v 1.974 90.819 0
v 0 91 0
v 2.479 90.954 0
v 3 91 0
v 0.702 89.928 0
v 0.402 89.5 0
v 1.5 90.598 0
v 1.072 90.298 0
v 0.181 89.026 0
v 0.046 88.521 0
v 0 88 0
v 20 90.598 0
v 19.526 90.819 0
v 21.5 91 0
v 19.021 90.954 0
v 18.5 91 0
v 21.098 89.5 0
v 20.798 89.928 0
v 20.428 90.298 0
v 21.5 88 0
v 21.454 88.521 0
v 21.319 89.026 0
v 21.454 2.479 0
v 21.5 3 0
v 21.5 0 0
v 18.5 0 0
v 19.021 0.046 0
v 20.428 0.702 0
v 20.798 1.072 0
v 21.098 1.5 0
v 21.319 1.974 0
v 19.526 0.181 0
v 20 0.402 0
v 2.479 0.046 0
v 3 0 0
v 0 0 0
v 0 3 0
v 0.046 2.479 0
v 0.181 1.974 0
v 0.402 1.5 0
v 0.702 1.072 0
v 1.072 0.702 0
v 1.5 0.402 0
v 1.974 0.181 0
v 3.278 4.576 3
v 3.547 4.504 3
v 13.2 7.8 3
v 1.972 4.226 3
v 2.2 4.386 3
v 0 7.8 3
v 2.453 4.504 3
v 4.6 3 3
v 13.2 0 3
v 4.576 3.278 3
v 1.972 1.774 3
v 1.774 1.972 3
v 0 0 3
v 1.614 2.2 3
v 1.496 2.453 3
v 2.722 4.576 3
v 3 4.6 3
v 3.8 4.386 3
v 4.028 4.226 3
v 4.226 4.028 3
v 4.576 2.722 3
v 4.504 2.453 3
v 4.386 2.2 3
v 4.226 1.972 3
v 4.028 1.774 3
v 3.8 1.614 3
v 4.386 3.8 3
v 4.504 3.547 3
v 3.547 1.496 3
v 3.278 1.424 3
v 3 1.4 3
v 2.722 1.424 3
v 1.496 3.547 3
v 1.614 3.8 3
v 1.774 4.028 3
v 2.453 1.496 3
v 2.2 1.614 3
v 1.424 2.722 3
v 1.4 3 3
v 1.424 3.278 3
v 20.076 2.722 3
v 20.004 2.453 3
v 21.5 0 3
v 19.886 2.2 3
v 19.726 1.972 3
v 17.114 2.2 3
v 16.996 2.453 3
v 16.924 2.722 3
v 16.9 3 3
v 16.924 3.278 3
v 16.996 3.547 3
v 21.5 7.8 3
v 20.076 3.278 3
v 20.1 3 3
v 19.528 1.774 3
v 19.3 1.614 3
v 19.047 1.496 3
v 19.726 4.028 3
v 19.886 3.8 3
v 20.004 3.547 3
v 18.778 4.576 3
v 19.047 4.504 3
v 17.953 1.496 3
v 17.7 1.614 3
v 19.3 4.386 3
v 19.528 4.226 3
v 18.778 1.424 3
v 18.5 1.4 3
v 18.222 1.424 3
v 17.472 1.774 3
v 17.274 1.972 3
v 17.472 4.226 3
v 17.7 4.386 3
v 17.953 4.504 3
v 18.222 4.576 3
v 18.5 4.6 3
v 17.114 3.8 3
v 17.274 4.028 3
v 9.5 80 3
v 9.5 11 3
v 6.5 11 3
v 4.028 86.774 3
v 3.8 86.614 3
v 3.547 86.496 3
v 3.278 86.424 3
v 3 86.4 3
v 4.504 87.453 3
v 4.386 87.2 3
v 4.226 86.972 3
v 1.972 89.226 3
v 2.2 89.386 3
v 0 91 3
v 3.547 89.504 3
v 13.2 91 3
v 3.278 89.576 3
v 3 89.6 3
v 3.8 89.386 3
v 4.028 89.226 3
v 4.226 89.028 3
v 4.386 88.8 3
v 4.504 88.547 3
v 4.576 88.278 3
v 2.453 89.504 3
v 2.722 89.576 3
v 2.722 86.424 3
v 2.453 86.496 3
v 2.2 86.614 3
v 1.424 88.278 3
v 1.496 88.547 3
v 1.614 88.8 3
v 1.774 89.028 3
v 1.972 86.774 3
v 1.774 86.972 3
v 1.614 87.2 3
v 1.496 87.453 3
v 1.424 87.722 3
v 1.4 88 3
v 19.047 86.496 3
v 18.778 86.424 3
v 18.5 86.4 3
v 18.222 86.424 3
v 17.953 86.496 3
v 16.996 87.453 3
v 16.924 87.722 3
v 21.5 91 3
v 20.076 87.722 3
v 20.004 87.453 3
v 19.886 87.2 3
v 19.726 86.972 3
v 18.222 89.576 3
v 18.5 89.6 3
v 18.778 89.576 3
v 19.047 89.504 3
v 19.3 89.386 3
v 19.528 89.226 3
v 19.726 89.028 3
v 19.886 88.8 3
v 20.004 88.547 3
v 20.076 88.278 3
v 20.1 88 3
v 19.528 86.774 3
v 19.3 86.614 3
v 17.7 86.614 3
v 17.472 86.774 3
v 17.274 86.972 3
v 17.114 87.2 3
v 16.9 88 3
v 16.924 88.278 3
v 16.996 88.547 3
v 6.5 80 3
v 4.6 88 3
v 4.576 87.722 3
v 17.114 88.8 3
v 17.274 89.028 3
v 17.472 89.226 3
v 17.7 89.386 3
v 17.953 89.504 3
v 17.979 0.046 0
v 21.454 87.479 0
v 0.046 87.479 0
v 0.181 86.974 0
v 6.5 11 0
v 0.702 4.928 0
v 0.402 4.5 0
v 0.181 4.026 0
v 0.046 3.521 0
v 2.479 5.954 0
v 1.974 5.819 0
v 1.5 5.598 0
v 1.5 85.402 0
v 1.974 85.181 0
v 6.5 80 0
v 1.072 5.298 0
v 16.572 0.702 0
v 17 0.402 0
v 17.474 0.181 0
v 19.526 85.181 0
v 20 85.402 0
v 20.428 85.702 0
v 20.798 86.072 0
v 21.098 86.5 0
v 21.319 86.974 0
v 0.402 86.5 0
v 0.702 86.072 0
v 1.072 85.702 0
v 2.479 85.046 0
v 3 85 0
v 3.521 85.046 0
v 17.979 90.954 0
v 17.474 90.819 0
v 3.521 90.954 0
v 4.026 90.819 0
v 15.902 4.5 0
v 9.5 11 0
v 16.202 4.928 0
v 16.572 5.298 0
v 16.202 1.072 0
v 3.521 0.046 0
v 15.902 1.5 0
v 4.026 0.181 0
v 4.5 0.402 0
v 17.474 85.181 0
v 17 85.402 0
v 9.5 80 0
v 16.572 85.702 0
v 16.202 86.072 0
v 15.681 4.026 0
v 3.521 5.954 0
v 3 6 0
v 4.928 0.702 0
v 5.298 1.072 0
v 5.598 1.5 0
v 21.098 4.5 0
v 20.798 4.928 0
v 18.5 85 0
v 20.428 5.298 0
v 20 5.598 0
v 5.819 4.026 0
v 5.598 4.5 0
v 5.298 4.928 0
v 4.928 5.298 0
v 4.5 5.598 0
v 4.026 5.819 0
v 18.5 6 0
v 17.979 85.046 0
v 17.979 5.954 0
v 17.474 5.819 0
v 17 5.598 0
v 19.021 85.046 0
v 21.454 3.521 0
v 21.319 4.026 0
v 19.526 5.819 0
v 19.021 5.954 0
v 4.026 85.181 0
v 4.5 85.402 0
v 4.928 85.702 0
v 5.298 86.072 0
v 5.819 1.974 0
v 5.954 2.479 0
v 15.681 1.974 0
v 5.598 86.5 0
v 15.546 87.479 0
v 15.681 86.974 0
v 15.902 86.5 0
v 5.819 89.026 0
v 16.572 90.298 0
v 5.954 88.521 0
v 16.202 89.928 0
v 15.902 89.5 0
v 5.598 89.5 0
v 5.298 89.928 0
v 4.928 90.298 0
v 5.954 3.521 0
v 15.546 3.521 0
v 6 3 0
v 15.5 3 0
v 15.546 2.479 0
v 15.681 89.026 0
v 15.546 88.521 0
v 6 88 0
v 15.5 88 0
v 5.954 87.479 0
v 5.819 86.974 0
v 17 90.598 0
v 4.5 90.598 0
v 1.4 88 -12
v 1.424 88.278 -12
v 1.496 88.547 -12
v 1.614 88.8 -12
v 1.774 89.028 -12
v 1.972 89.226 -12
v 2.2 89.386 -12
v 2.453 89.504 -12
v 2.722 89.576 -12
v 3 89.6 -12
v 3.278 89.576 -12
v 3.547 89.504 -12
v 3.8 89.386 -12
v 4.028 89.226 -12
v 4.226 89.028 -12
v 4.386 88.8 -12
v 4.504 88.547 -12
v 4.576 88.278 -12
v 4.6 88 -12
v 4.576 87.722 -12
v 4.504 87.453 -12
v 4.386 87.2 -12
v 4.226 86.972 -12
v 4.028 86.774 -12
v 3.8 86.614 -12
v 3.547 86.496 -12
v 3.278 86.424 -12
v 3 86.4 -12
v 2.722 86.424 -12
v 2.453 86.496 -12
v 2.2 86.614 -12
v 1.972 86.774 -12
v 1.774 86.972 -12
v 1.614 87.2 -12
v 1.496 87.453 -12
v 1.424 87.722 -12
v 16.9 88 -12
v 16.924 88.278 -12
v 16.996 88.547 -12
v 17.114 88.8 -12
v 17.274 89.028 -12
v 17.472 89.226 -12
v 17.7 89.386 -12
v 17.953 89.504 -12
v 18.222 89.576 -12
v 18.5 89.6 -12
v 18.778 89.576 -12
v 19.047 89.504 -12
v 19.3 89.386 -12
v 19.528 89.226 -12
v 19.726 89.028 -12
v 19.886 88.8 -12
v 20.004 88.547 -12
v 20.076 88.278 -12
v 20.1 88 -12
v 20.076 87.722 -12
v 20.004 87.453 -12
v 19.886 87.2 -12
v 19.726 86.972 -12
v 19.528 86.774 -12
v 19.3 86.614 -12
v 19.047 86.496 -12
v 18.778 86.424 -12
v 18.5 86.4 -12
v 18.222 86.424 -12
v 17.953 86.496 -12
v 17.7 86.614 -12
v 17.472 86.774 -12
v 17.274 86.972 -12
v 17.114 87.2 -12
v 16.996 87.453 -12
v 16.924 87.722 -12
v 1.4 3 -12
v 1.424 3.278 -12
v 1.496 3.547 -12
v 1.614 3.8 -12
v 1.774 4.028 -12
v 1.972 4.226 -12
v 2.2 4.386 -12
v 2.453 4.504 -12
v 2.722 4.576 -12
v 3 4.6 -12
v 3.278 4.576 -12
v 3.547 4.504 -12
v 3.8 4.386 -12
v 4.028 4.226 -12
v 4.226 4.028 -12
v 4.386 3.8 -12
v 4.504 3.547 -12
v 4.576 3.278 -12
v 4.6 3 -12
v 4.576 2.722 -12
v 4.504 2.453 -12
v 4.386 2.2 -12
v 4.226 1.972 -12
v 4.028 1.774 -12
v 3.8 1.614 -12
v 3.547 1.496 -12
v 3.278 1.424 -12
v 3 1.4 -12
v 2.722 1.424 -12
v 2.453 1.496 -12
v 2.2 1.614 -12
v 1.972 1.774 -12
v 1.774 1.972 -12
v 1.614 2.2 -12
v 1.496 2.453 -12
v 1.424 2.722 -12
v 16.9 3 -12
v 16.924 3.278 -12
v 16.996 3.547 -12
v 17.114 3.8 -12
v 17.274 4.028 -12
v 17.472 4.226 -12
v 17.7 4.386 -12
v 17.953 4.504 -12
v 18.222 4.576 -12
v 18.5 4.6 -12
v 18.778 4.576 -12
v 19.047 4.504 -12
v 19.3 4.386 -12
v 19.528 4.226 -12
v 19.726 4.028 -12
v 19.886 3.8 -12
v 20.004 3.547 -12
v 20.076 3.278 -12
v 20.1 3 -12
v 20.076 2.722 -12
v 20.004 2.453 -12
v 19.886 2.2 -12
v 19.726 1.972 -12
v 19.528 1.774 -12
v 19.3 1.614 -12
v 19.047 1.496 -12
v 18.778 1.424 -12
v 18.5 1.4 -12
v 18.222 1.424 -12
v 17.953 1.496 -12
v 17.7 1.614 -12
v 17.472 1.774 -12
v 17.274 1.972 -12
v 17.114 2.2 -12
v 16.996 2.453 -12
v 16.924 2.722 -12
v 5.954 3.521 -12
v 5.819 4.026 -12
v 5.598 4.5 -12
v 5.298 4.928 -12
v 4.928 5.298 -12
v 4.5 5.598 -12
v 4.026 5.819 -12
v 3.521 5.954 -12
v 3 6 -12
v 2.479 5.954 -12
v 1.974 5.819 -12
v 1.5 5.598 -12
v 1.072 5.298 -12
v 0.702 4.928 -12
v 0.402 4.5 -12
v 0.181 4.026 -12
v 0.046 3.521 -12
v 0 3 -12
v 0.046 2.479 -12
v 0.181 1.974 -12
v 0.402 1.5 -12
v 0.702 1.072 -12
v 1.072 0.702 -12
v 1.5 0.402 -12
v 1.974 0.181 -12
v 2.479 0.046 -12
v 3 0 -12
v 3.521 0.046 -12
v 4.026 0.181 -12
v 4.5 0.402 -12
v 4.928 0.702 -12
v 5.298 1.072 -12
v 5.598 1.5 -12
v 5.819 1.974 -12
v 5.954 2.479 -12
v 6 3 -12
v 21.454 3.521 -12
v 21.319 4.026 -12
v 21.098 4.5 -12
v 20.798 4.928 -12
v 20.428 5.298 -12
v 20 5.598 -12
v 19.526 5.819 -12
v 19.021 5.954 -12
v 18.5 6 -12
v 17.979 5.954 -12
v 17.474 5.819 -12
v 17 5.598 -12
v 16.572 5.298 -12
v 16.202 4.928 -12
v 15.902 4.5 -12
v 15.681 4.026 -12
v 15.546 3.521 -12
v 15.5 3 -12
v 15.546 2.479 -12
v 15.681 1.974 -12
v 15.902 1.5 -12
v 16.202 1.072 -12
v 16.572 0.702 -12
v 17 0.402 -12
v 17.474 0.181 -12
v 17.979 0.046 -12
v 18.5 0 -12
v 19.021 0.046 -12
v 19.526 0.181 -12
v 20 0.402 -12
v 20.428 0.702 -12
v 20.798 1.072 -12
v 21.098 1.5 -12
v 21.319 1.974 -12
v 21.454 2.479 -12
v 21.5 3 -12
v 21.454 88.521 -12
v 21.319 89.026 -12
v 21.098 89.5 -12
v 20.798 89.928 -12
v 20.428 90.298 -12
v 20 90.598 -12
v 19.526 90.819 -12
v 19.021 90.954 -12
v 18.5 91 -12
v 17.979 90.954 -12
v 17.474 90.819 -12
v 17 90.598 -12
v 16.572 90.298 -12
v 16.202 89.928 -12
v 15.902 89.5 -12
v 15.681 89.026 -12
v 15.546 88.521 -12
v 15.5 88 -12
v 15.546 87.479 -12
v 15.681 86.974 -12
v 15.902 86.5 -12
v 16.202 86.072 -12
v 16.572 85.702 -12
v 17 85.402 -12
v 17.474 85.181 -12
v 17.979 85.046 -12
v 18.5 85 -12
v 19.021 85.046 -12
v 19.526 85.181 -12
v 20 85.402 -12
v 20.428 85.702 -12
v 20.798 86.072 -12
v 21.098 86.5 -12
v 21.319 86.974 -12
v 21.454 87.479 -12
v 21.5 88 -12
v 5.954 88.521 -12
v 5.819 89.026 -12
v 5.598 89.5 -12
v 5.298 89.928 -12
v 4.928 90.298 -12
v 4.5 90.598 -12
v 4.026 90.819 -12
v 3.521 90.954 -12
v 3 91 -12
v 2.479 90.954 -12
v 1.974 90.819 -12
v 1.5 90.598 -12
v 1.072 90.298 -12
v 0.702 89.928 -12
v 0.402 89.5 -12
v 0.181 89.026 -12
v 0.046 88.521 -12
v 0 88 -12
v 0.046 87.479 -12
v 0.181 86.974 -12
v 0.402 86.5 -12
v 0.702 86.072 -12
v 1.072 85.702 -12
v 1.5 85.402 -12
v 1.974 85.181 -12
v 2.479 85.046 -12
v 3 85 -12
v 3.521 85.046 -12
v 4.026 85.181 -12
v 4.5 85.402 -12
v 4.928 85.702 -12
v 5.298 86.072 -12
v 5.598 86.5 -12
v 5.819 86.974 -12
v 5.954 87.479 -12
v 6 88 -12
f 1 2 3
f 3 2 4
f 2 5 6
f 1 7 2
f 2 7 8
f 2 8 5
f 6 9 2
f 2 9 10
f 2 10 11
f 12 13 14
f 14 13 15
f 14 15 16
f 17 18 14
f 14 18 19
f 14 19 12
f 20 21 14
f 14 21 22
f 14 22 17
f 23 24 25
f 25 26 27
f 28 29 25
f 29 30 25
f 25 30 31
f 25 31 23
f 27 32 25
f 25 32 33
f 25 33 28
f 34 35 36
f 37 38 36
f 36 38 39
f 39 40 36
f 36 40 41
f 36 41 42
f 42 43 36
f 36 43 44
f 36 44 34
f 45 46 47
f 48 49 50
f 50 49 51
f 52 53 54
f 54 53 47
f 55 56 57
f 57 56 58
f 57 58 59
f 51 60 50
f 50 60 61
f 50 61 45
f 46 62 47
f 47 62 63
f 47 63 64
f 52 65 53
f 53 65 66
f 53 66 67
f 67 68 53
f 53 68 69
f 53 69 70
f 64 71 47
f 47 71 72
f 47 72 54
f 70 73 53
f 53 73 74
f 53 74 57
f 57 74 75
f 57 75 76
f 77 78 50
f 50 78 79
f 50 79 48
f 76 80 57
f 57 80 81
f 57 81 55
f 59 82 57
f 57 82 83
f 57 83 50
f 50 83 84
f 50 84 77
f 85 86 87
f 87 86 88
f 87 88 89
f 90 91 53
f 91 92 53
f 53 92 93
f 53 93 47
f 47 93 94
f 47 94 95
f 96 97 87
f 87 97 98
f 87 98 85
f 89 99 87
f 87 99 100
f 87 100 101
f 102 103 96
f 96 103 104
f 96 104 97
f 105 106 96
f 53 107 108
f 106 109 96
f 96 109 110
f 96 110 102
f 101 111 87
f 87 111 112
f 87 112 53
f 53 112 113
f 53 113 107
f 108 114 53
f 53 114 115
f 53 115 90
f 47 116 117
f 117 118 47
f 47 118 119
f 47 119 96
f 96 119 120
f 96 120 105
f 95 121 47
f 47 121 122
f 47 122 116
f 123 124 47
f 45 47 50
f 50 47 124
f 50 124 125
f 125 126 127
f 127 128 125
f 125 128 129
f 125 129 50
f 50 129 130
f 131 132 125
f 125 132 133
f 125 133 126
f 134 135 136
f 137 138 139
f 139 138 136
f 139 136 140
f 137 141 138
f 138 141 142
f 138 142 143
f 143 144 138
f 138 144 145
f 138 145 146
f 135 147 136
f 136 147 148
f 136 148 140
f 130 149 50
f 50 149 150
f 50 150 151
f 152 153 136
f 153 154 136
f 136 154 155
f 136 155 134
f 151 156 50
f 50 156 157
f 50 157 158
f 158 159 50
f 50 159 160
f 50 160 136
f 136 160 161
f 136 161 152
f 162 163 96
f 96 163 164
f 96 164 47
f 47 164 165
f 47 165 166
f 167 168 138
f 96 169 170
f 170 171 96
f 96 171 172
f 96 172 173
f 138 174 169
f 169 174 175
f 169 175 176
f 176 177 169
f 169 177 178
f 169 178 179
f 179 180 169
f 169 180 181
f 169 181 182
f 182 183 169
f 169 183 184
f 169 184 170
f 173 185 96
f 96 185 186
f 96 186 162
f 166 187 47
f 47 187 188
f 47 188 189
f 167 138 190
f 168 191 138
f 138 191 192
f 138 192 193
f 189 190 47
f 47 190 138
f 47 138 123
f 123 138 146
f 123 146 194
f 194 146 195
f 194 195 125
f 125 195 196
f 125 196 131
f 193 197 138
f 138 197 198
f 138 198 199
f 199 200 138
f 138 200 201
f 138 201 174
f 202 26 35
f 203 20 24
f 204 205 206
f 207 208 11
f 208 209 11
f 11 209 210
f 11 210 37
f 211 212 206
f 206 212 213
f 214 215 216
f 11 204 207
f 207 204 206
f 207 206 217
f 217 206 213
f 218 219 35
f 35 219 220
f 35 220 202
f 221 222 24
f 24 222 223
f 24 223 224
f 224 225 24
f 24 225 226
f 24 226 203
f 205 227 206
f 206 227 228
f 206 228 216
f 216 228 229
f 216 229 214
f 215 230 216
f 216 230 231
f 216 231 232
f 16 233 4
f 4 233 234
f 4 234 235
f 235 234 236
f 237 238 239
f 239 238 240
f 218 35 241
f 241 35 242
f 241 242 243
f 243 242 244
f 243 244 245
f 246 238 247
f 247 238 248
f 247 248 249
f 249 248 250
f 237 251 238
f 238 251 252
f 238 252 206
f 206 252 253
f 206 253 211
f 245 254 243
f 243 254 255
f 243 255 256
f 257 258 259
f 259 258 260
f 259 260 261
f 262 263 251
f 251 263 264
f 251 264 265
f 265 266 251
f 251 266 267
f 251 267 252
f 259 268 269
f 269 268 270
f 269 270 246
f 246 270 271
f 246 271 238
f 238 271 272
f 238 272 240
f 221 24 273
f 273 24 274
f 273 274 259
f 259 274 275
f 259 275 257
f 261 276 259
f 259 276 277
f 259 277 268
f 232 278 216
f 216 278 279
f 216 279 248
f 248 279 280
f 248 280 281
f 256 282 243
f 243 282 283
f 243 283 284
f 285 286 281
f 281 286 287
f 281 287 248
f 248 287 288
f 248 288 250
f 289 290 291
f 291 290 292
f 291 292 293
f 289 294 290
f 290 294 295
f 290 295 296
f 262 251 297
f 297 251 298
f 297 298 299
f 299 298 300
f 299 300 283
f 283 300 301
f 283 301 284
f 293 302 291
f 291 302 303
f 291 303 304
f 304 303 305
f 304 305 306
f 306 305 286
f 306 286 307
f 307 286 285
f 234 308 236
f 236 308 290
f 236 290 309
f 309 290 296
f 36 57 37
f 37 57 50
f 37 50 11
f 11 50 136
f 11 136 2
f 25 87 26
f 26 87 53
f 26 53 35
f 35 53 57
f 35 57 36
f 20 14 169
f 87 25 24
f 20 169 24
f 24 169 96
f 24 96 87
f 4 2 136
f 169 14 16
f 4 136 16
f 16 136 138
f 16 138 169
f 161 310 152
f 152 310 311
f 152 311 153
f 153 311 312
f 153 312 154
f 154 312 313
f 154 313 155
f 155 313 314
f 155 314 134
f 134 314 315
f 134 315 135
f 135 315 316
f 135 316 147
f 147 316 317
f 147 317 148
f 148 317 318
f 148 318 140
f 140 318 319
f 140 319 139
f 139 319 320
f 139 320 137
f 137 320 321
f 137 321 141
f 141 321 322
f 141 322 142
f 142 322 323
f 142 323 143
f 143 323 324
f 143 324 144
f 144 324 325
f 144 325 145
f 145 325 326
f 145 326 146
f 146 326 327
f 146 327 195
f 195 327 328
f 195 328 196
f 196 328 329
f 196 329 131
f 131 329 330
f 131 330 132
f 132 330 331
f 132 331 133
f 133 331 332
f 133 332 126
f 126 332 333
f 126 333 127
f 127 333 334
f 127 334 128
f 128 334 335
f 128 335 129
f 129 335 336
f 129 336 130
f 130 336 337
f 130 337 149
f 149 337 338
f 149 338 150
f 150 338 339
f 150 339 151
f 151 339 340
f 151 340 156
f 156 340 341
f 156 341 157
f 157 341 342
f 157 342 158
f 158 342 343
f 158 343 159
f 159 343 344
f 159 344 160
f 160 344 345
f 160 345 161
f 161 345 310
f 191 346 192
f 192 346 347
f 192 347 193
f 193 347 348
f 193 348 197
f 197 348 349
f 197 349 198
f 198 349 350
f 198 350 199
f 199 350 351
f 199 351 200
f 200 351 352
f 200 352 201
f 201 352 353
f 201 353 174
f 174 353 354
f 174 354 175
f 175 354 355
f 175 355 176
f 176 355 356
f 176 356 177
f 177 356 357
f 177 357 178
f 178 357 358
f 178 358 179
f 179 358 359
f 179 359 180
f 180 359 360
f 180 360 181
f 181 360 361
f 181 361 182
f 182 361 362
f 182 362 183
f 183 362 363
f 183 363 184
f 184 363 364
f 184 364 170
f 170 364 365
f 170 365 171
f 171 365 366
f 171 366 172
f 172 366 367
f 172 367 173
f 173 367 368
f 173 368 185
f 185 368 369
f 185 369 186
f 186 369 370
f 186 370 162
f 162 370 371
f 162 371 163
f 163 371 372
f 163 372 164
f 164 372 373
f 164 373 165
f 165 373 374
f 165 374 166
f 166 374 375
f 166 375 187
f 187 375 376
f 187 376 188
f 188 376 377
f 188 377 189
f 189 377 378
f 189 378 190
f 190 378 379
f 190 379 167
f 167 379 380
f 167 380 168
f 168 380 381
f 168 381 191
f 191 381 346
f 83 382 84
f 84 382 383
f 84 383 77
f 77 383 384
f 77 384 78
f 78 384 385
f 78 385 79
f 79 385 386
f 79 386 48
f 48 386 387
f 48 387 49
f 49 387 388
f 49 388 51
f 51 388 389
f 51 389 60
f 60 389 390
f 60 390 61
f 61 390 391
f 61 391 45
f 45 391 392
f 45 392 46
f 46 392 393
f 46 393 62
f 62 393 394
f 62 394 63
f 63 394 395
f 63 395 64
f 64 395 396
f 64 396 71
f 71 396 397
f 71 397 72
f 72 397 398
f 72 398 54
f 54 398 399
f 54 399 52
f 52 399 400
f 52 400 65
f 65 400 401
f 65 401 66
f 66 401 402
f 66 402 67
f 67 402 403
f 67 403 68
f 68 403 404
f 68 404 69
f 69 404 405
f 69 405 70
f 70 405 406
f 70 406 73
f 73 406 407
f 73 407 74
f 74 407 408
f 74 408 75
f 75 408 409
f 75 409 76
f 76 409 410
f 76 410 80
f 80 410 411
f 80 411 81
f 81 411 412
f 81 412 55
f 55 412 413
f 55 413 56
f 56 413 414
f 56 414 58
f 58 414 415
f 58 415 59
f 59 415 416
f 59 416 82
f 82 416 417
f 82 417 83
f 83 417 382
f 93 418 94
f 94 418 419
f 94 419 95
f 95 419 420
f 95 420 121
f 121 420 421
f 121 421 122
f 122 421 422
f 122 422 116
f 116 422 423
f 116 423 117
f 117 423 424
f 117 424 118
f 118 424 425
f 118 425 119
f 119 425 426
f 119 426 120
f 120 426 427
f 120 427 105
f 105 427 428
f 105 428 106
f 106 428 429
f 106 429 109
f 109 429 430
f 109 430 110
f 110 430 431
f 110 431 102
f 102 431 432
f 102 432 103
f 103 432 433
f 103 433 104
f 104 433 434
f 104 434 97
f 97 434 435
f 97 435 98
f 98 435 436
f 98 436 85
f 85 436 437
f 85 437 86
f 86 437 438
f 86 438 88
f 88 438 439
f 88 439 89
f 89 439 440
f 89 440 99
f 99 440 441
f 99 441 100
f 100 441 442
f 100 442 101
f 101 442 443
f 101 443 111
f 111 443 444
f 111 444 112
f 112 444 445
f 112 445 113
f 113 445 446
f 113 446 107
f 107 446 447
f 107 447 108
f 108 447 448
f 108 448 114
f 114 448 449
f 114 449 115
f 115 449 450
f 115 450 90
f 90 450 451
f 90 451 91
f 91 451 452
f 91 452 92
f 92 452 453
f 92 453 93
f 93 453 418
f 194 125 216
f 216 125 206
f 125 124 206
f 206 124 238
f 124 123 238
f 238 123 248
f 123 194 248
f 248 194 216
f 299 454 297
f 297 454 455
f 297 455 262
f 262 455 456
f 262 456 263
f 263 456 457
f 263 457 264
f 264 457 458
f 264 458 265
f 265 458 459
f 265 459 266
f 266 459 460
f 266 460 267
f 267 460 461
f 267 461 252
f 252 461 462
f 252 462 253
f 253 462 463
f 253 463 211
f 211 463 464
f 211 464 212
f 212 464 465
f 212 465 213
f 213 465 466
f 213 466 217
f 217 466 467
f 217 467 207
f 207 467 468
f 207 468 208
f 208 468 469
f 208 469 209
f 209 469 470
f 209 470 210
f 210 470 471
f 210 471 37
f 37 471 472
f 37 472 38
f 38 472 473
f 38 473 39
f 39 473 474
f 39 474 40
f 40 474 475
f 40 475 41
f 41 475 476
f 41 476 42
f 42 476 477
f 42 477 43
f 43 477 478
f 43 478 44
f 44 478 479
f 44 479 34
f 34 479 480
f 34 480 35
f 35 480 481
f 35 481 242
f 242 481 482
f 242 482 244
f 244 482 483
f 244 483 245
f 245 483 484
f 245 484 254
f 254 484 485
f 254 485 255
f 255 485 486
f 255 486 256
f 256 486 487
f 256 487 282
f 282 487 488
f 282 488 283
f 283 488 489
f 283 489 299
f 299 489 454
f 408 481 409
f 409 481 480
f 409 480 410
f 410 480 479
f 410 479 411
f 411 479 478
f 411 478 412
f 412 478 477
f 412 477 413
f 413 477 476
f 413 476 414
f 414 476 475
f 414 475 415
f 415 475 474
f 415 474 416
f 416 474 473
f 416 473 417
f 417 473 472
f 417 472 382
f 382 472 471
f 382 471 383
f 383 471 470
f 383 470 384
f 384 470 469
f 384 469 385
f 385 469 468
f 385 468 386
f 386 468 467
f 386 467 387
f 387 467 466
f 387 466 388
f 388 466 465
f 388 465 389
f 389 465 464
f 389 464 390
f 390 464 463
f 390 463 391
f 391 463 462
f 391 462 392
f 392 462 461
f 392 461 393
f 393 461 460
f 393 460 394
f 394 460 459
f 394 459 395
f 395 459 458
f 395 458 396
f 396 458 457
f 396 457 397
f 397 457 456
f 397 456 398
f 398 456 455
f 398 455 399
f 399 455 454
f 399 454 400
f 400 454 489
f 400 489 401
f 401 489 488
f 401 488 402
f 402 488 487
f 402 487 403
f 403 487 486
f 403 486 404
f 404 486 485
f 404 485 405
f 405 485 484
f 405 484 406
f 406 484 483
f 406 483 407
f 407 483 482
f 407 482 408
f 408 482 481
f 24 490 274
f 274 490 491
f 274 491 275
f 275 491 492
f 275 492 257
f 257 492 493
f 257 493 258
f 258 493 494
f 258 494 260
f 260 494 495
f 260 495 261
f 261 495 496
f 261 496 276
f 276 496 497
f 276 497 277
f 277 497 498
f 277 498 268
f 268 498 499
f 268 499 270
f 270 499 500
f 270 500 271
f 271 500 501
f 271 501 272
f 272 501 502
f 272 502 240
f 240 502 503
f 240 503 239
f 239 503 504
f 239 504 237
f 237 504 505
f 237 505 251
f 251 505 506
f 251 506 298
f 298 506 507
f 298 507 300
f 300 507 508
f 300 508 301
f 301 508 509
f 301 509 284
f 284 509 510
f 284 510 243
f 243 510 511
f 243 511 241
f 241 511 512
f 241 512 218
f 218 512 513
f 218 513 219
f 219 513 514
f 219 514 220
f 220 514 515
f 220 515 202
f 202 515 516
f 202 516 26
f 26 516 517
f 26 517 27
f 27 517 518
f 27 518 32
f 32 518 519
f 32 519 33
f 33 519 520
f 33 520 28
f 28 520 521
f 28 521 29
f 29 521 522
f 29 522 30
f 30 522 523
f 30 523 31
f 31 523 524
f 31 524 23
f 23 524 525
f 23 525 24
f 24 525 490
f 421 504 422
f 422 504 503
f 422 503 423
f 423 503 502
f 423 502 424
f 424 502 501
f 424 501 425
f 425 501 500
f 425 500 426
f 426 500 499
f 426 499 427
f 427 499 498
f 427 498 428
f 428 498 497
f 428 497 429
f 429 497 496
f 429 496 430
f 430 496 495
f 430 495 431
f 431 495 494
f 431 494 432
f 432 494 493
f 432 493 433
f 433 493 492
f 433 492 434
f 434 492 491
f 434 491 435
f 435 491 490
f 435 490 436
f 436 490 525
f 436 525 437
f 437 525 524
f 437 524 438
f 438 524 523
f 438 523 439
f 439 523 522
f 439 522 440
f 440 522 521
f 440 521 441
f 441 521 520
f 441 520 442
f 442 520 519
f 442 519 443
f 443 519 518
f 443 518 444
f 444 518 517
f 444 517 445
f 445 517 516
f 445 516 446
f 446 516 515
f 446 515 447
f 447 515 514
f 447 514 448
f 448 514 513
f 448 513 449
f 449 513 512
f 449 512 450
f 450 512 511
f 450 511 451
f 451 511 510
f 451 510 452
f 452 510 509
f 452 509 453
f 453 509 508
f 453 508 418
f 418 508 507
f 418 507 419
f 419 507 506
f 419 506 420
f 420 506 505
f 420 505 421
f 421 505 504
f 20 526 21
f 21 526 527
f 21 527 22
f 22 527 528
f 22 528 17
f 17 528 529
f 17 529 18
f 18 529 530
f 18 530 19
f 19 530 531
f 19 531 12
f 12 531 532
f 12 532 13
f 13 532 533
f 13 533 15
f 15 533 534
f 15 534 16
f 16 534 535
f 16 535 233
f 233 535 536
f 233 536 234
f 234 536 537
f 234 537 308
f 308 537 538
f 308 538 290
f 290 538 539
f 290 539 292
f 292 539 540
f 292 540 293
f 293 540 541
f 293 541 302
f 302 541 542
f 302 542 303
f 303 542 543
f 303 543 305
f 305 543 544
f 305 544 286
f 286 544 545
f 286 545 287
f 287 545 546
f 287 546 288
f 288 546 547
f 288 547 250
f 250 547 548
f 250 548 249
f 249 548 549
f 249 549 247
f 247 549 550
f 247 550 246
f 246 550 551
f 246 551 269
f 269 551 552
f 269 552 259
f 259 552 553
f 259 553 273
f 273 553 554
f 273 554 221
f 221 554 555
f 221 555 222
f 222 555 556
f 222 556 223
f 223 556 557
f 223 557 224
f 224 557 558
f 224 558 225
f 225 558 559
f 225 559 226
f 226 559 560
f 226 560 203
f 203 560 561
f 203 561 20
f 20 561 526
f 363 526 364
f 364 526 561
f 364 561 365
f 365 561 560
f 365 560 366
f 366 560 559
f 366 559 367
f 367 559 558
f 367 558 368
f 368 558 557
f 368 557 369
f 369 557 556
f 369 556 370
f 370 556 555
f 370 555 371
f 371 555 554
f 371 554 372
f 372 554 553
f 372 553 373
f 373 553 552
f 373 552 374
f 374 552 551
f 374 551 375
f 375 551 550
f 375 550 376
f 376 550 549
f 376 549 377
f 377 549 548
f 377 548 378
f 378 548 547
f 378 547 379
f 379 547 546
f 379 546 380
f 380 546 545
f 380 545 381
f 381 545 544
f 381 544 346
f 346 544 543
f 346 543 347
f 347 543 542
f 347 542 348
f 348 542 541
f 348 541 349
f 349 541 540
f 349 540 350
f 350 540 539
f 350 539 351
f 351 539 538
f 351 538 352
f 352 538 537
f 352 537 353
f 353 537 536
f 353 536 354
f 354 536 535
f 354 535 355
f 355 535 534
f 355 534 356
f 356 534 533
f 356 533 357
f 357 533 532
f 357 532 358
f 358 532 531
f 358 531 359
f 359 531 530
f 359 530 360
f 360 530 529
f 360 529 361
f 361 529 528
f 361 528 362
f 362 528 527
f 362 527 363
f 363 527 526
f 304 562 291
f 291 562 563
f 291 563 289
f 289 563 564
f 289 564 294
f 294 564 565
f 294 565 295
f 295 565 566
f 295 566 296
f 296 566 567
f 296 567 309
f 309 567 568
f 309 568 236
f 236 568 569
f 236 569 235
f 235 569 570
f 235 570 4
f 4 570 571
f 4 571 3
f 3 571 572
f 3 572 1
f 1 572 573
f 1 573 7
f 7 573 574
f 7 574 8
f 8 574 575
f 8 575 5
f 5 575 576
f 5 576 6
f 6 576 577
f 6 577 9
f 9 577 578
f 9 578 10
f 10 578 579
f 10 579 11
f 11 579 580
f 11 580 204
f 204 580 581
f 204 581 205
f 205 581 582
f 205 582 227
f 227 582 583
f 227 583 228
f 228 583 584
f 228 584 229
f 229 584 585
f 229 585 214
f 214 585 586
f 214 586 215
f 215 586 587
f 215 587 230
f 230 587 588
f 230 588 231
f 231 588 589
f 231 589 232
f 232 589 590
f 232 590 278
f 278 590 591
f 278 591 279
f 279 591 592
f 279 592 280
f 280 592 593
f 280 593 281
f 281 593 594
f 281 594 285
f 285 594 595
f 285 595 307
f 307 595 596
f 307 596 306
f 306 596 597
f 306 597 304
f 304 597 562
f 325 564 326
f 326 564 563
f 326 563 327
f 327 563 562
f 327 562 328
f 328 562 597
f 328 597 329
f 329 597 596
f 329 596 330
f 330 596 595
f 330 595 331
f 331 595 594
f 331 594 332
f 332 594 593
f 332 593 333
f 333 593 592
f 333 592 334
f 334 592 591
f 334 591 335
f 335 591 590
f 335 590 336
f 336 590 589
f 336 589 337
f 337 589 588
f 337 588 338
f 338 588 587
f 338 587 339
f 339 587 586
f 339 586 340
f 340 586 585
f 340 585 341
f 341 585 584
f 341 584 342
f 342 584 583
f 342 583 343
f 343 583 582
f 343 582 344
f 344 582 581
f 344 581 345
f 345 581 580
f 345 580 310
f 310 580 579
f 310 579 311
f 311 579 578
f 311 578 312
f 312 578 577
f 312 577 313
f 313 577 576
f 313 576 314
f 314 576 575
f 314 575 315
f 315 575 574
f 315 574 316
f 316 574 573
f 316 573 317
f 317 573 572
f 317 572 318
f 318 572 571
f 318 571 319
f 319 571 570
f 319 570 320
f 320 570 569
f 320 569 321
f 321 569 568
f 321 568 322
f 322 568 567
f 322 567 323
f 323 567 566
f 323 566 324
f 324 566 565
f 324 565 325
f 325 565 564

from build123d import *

# Parameters (mm, degrees)
SKETCH1_W           = 21.5
SKETCH1_H           = 91
SKETCH1_R           = 1.6
SKETCH1_W_2         = 3
SKETCH1_H_2         = 69
BOSS_EXTRUDE1_DEPTH = 3
BOSS_EXTRUDE2_START = -12
SKETCH2_R           = 3
SKETCH2_R_2         = 1.6
BOSS_EXTRUDE2_DEPTH = 12


with BuildPart() as part:
    # Sketch1 → Boss-Extrude1 (new body)
    with BuildSketch(Plane.XY):
        with Locations((10.75, 45.5)):
            Rectangle(SKETCH1_W, SKETCH1_H)
        with Locations((3, 88)):
            Circle(SKETCH1_R, mode=Mode.SUBTRACT)
        with Locations((18.5, 88)):
            Circle(SKETCH1_R, mode=Mode.SUBTRACT)
        with Locations((3, 3)):
            Circle(SKETCH1_R, mode=Mode.SUBTRACT)
        with Locations((18.5, 3)):
            Circle(SKETCH1_R, mode=Mode.SUBTRACT)
        with Locations((8, 45.5)):
            Rectangle(SKETCH1_W_2, SKETCH1_H_2, mode=Mode.SUBTRACT)
    extrude(amount=BOSS_EXTRUDE1_DEPTH)

    # Sketch2 → Boss-Extrude2 (add)
    # profile 1 of 4: a face of its own
    with BuildSketch(Plane.XY.offset(BOSS_EXTRUDE2_START)):
        with Locations((3, 3)):
            Circle(SKETCH2_R)
        with Locations((3, 3)):
            Circle(SKETCH2_R_2, mode=Mode.SUBTRACT)
    # profile 2 of 4: a face of its own
    with BuildSketch(Plane.XY.offset(BOSS_EXTRUDE2_START)):
        with Locations((18.5, 3)):
            Circle(SKETCH2_R)
        with Locations((18.5, 3)):
            Circle(SKETCH2_R_2, mode=Mode.SUBTRACT)
    # profile 3 of 4: a face of its own
    with BuildSketch(Plane.XY.offset(BOSS_EXTRUDE2_START)):
        with Locations((18.5, 88)):
            Circle(SKETCH2_R)
        with Locations((18.5, 88)):
            Circle(SKETCH2_R_2, mode=Mode.SUBTRACT)
    # profile 4 of 4: a face of its own
    with BuildSketch(Plane.XY.offset(BOSS_EXTRUDE2_START)):
        with Locations((3, 88)):
            Circle(SKETCH2_R)
        with Locations((3, 88)):
            Circle(SKETCH2_R_2, mode=Mode.SUBTRACT)
    extrude(amount=BOSS_EXTRUDE2_DEPTH)


solid = part.part
